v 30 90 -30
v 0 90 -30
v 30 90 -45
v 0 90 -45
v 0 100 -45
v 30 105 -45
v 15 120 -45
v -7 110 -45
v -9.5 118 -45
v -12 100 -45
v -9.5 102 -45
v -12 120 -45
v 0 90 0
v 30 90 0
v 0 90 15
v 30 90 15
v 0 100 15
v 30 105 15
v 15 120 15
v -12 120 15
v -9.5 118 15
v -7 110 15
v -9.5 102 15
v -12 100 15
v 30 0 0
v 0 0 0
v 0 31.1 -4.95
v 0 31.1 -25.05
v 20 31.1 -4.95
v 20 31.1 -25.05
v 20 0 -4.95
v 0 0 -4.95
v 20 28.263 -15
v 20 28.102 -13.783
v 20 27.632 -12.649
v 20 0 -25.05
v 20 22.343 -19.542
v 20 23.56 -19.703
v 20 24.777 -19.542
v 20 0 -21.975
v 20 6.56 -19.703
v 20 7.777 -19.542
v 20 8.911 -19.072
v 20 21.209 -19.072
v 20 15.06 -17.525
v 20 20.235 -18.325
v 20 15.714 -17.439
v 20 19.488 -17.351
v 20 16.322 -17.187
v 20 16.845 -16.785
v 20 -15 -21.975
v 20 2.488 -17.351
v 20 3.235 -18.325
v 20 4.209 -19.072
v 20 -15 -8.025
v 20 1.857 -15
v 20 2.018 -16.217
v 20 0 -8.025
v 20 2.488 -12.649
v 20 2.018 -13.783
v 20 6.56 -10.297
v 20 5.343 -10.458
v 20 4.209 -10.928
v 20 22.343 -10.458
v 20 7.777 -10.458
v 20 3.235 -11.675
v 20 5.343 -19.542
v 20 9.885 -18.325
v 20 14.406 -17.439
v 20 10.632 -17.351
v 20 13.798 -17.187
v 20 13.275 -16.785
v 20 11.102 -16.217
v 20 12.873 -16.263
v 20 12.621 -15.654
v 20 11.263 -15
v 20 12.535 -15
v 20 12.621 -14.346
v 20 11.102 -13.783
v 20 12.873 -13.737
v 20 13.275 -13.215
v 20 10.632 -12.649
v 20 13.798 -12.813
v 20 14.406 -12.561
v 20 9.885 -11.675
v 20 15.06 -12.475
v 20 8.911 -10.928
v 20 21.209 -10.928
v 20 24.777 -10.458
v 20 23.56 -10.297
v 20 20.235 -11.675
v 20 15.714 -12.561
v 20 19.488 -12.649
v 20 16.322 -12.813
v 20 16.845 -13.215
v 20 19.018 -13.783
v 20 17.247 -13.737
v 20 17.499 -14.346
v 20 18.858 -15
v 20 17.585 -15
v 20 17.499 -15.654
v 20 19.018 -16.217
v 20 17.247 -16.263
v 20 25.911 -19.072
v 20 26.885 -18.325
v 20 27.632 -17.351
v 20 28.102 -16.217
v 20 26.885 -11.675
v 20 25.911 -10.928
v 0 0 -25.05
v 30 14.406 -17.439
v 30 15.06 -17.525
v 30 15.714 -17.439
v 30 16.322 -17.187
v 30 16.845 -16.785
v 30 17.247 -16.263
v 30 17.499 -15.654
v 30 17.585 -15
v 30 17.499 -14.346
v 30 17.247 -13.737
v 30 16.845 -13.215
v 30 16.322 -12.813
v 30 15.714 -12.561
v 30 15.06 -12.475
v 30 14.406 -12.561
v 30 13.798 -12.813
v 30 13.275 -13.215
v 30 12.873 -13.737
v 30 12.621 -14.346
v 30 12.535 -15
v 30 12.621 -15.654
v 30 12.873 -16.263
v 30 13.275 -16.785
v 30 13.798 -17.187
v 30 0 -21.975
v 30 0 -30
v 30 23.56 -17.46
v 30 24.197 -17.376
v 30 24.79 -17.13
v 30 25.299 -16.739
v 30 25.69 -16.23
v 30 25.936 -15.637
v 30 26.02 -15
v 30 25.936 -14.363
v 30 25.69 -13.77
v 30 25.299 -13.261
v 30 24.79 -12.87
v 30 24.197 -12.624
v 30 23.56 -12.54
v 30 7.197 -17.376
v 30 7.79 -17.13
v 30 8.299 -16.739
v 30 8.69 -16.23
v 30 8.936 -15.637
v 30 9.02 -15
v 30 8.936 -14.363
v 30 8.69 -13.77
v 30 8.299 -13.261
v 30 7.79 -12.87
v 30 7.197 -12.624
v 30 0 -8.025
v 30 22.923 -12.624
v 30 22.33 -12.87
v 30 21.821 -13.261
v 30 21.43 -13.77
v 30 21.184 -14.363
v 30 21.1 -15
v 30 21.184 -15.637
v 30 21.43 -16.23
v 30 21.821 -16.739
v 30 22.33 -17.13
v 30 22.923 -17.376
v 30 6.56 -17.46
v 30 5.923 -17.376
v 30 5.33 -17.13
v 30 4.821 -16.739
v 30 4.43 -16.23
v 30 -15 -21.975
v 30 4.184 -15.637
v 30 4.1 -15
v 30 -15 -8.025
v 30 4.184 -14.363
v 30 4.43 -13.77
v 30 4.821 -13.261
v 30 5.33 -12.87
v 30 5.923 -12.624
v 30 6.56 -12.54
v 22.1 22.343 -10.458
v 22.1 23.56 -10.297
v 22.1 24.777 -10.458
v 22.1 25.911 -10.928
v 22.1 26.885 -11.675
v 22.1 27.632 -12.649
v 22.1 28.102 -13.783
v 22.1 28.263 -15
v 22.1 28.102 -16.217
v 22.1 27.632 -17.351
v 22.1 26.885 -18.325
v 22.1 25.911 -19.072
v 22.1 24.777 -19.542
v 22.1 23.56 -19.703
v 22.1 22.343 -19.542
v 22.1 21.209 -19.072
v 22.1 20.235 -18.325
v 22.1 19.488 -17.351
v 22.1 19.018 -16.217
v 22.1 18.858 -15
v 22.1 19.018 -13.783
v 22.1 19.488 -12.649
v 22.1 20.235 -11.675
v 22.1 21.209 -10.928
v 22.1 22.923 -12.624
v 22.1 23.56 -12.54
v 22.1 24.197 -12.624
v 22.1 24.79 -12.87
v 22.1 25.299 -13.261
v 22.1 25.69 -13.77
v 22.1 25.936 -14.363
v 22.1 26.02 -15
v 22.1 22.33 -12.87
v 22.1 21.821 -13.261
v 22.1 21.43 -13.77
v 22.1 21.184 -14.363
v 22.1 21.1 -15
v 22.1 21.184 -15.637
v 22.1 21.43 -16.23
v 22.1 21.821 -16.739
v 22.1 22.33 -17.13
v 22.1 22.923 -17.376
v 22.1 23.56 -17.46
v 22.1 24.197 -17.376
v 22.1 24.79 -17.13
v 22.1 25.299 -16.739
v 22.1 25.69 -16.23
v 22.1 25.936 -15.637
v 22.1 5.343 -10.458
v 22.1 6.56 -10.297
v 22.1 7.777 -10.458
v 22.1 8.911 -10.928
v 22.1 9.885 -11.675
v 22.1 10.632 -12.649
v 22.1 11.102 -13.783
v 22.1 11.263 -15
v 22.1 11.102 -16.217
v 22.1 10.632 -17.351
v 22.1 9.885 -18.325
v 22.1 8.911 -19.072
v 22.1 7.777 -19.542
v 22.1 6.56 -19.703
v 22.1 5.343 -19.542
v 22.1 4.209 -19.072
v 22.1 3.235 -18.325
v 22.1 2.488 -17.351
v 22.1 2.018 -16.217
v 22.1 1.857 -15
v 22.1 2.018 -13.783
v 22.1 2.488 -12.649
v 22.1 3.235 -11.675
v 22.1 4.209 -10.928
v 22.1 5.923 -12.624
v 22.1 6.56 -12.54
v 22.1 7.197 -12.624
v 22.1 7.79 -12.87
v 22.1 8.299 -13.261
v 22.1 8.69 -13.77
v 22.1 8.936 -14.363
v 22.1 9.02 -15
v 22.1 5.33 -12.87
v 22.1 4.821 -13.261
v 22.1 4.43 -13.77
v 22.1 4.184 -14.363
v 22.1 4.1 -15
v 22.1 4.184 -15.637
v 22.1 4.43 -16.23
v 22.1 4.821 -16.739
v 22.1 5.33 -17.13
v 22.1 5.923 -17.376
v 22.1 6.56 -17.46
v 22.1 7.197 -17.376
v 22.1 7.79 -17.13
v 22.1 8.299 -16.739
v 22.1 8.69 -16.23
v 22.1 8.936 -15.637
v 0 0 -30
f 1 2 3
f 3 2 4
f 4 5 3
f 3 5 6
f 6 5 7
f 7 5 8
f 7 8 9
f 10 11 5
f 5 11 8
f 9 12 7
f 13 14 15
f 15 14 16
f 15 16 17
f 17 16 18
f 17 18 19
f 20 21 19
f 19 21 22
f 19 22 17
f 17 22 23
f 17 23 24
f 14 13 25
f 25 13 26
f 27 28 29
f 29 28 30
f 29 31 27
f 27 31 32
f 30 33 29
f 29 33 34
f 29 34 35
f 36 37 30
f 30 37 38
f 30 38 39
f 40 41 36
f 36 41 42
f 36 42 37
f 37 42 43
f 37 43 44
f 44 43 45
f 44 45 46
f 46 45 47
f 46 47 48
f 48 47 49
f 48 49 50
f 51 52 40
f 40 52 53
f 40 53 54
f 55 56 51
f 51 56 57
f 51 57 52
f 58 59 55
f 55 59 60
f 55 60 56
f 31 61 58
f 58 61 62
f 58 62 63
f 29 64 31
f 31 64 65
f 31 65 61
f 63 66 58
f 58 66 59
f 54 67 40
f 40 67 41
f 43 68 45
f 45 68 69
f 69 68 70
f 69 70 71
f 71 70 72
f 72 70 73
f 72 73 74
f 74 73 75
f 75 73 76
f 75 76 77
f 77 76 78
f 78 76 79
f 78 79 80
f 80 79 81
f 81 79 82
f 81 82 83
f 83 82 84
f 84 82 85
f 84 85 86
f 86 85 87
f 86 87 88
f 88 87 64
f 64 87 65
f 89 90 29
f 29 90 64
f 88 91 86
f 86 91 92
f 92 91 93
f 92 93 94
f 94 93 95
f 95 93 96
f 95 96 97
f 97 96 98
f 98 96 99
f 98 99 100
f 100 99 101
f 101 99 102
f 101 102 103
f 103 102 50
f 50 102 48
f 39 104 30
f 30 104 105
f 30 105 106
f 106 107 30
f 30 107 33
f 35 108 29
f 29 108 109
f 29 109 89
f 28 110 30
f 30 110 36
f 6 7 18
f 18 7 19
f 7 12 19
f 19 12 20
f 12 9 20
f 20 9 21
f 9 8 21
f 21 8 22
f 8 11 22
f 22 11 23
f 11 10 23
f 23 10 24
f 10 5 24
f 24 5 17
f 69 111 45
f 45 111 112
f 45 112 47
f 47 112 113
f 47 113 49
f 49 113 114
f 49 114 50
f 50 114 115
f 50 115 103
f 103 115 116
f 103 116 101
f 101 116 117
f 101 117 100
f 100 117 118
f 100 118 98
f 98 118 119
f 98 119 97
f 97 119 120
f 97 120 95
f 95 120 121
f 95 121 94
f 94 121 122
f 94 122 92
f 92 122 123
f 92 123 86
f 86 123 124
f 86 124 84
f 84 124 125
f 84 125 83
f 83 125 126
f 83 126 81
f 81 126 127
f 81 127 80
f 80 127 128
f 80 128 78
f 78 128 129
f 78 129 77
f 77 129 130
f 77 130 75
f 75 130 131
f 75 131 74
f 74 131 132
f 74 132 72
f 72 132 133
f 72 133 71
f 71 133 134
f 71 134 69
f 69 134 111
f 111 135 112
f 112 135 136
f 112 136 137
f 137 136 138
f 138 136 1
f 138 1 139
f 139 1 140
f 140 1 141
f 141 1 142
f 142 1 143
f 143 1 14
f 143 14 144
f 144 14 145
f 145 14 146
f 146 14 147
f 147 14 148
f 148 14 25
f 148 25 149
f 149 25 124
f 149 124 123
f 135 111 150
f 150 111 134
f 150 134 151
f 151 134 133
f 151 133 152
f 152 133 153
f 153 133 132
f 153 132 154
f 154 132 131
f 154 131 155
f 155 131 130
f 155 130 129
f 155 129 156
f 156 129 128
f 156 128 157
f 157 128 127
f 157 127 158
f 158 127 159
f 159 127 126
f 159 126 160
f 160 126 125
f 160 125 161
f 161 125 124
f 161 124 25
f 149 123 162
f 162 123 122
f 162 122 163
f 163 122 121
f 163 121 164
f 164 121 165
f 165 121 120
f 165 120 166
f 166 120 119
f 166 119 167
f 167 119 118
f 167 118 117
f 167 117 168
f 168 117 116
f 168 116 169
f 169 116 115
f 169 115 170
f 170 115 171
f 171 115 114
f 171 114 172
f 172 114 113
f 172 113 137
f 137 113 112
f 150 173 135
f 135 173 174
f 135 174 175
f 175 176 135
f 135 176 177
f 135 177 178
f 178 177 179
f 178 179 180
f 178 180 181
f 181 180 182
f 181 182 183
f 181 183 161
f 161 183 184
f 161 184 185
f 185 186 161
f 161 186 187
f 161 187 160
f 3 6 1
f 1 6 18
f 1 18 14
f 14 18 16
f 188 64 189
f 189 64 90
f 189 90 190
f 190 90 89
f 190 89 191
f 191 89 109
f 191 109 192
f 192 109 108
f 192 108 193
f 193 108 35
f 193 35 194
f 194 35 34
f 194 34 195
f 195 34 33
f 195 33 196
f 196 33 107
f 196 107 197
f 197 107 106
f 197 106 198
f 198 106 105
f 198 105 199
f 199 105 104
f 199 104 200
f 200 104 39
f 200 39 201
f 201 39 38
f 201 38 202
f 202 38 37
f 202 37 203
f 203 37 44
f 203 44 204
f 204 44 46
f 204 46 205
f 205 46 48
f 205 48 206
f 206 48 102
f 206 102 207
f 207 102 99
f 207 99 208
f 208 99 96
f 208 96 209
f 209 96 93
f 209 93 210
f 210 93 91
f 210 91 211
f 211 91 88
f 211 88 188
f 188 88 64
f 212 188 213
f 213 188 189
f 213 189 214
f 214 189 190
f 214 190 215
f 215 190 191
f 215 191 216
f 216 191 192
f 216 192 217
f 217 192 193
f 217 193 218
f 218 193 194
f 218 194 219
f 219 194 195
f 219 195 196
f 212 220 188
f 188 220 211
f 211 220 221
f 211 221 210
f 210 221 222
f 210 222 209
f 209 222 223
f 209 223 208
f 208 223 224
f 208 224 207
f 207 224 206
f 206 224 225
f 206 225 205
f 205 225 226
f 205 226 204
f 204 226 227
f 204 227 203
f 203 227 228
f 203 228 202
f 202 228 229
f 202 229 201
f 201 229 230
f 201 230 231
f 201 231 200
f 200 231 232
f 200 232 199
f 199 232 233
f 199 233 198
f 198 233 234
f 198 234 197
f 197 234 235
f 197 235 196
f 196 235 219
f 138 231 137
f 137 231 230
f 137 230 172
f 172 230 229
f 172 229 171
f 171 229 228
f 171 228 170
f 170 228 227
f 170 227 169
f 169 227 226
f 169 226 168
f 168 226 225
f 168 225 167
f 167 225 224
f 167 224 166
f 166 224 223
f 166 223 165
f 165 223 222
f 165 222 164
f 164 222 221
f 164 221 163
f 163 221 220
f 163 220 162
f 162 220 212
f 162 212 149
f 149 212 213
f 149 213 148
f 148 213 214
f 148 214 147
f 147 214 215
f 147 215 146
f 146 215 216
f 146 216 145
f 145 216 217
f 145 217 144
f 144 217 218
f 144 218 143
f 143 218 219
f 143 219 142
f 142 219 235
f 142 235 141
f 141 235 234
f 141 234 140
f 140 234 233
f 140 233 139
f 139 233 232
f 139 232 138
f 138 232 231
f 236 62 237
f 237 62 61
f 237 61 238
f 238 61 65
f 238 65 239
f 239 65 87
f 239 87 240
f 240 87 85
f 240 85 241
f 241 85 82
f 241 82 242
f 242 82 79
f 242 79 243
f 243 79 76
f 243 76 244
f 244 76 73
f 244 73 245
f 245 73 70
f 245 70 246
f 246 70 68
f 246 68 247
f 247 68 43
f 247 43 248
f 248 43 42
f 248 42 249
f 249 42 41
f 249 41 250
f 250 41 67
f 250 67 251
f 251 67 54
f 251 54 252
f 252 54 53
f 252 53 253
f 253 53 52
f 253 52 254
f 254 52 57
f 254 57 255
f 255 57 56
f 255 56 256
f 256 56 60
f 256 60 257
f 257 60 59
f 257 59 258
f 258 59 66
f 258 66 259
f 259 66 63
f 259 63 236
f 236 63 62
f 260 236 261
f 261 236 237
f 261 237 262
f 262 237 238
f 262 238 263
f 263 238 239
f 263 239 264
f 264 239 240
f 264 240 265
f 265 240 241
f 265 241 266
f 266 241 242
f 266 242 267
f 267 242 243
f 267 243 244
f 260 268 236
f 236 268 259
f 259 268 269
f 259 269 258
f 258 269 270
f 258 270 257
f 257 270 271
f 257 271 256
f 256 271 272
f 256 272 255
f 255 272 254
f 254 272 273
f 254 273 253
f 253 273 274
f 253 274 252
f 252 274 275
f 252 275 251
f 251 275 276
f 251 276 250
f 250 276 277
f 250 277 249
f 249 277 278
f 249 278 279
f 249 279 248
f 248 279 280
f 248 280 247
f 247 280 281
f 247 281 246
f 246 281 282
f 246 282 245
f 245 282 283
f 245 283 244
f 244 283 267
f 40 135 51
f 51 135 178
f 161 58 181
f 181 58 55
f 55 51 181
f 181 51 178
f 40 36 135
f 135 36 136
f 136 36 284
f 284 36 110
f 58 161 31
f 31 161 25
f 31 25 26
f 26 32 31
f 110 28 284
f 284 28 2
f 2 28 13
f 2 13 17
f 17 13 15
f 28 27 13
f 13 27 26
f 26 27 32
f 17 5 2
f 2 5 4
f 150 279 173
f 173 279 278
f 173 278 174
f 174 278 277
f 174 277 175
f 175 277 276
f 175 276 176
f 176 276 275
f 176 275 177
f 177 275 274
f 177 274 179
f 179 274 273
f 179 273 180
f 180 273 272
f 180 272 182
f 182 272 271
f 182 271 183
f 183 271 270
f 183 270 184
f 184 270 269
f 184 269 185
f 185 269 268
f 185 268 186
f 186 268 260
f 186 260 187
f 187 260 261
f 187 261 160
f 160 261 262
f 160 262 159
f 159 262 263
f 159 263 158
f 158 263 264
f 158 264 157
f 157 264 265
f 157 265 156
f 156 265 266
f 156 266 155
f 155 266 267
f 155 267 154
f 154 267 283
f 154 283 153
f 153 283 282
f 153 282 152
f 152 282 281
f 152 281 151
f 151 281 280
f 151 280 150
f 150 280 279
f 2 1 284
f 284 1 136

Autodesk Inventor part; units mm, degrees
ref_plane "YZ Plane" through (0, 0, 0) normal (1, 0, 0) x (0, 1, 0)
ref_plane "XZ Plane" through (0, 0, 0) normal (0, 1, 0) x (-1, 0, 0)
sketch "Sketch1" plane through (0, 0, 0) normal (0, 0, 1) x (1, 0, 0)
  line L0 (0, 0) -> (25, 0)
  line L1 (25, 0) -> (25, 40)
  line L2 (25, 40) -> (0, 40)
  line L3 (0, 40) -> (0, 0)
  dimension "d1" = 25
  dimension "d2" = 40
  dimension "d3" = 25
extrude "Extrusion1" add sketch "Sketch1" against normal blind 30
sketch "Sketch2" plane through (25, 0, 0) normal (1, 0, 0) x (0, 0, -1)
  line L0 (0, 0) -> (30, 0) projected
  circle A0 centre (15, 6.56) radius 2.46
extrude "Extrusion2" cut sketch "Sketch2" against normal blind 30
sketch "Sketch3" plane through (0, 0, 0) normal (-1, 0, 0) x (0, 0, 1)
  line L0 (0, 0) -> (-30, 0) projected
  line L1 (-25.05, 0) -> (-4.95, 0)
  line L2 (-4.95, 0) -> (-4.95, 33.12)
  line L3 (-4.95, 33.12) -> (-25.05, 33.12)
  line L4 (-25.05, 33.12) -> (-25.05, 0)
  dimension "d11" = 20.1
extrude "Extrusion3" cut sketch "Sketch3" against normal blind 20
sketch "Sketch4" plane through (0, 0, 0) normal (0, -1, 0) x (1, 0, 0)
  line L0 (20, -4.95) -> (20, -25.05) projected
  line L1 (20, -15) -> (25, -15)
  line L2 (25, 0) -> (25, -30) projected
  line L3 (20, -8.025) -> (25, -8.025)
  line L4 (25, -8.025) -> (25, -21.975)
  line L5 (25, -21.975) -> (20, -21.975)
  line L6 (20, -21.975) -> (20, -8.025)
  line L7 (20, -8.025) -> (25, -21.975) construction
  line L8 (25, -8.025) -> (20, -21.975) construction
  line L9 (25, -12.54) -> (25, -17.46) projected
  point P0 (0, 0)
  point P1 (22.5, -15)
  dimension "d14" = 13.95
extrude "Extrusion4" add sketch "Sketch4" along normal blind 15
sketch "Sketch5" plane through (20, 0, 0) normal (-1, 0, 0) x (0, 0, 1)
  circle A0 centre (-15, 6.56) radius 2.46 projected
  circle A1 centre (-15, 6.56) radius 4.7025
  circle A2 centre (-15, 6.56) radius 2.46 projected
  circle A3 centre (-15, 6.56) radius 2.46
  point P0 (0, 0)
  dimension "d17" = 9.405
extrude "Extrusion5" cut sketch "Sketch5" against normal blind 2.1
sketch "Sketch6" plane through (25, 0, 0) normal (1, 0, 0) x (0, 0, -1)
  circle A0 centre (15, 6.56) radius 4.7025 projected
  line L0 (15, 6.56) -> (15, 23.56)
  circle A1 centre (15, 23.56) radius 2.46
  point P0 (0, 0)
  dimension "d20" = 17
  dimension "d21" = 4.92
extrude "Extrusion6" cut sketch "Sketch6" against normal blind 10 contours A1
sketch "Sketch7" plane through (20, 0, 0) normal (-1, 0, 0) x (0, 0, 1)
  circle A0 centre (-15, 23.56) radius 2.46 projected
  circle A1 centre (-15, 23.56) radius 4.7025
  point P0 (0, 0)
  dimension "d24" = 9.405
extrude "Extrusion7" cut sketch "Sketch7" against normal blind 2.1
sketch "Sketch9" plane through (25, 0, 0) normal (1, 0, 0) x (0, 0, -1)
  circle A0 centre (15, 6.56) radius 2.46 projected
  circle A1 centre (15, 6.56) radius 2.46
  circle A2 centre (15, 23.56) radius 2.46 projected
  circle A3 centre (15, 23.56) radius 2.46
  line L0 (30, 40) -> (30, 0) projected
  line L1 (30, 0) -> (30, 40)
  line L2 (30, 40) -> (0, 40)
  line L3 (0, 40) -> (0, 0)
  line L4 (0, 0) -> (8.025, 0) projected
  line L5 (21.975, 0) -> (21.975, -15)
  line L6 (21.975, -15) -> (8.025, -15)
  line L7 (8.025, -15) -> (8.025, 0)
  line L8 (0, 0) -> (8.025, 0)
  line L9 (21.975, 0) -> (30, 0)
extrude "Extrusion8" add sketch "Sketch9" along normal blind 5
sketch "Sketch10" plane through (0, 40, 0) normal (0, 1, 0) x (1, 0, 0)
  line L0 (0, 30) -> (30, 30) projected
  line L1 (30, 0) -> (0, 0) projected
  line L2 (0, 30) -> (30, 30)
  line L3 (30, 30) -> (30, 0)
  line L4 (30, 0) -> (0, 0)
  line L5 (0, 0) -> (0, 30)
extrude "Extrusion9" add sketch "Sketch10" along normal blind 30
sketch "Sketch12" plane through (30, 0, 0) normal (1, 0, 0) x (0, 0, -1)
  circle A0 centre (15, 6.56) radius 2.46 projected
  line L0 (15, 6.56) -> (15, 15.06)
  circle A1 centre (15, 15.06) radius 2.525
  point P0 (0, 0)
  dimension "d31" = 8.5
  dimension "d33" = 5.05
extrude "Extrusion10" cut sketch "Sketch12" against normal blind 30 contours A1
sketch "Sketch14" plane through (0, 0, 0) normal (0, 0, 1) x (1, 0, 0)
  line L0 (30, 70) -> (0, 70) projected
  line L1 (0, 70) -> (0, 85)
  line L2 (30, 0) -> (30, 70) projected
  line L3 (30, 100) -> (30, 70)
  line L4 (-12, 120) -> (15, 120)
  line L5 (-9.5, 118) -> (-7, 110)
  line L6 (-9.5, 118) -> (-12, 120)
  line L7 (-9.5, 102) -> (-7, 110)
  line L8 (-9.5, 102) -> (-12, 100)
  line L9 (30, 105) -> (15, 120)
  line L10 (30, 105) -> (30, 100)
  line L11 (0, 85) -> (0, 100)
  line L12 (0, 100) -> (-12, 100)
  point P0 (0, 0)
  dimension "d60" = 20
  dimension "d64" = 12
extrude "Extrusion12" add sketch "Sketch14" against normal blind 30
sketch "Sketch15" plane through (0, 0, -25.05) normal (-1, 0, 0) x (0, 0, 1)
  line L0 (0, 33.12) -> (20.1, 33.12) projected
  line L1 (20.1, 33.12) -> (20.1, 0) projected
  line L2 (0, 33.12) -> (20.1, 33.12)
  line L3 (20.1, 33.12) -> (20.1, 31.1)
  line L4 (20.1, 31.1) -> (0, 31.1)
  line L5 (0, 31.1) -> (0, 33.12)
  point P0 (25.05, 0)
  dimension "d57" = 2.02
extrude "Extrusion13" add sketch "Sketch15" against normal blind 20
sketch "Sketch20" plane through (0, 0, 0) normal (0, 0, 1) x (1, 0, 0)
  line L0 (0, 100) -> (-12, 100) projected
  line L1 (0, 100) -> (-12, 100)
  line L2 (-12, 100) -> (-9.5, 102) projected
  line L3 (-12, 100) -> (-9.5, 102)
  line L4 (-9.5, 102) -> (-7, 110) projected
  line L5 (-9.5, 102) -> (-7, 110)
  line L6 (-7, 110) -> (-9.5, 118) projected
  line L7 (-7, 110) -> (-9.5, 118)
  line L8 (-9.5, 118) -> (-12, 120) projected
  line L9 (-9.5, 118) -> (-12, 120)
  line L10 (-12, 120) -> (15, 120) projected
  line L11 (-12, 120) -> (15, 120)
  line L12 (15, 120) -> (30, 105) projected
  line L13 (15, 120) -> (30, 105)
  line L14 (30, 105) -> (30, 90)
  line L15 (30, 0) -> (30, 105) projected
  line L16 (30, 90) -> (0, 90)
  line L17 (0, 90) -> (0, 100)
  point P0 (0, 0)
  dimension "d65" = 15
  dimension "d66" = 30
extrude "Extrusion14" add sketch "Sketch20" along normal blind 15
ref_plane "Work Plane1" through (0, 0, -15) normal (0, 0, 1) x (1, 0, 0)
mirror "Mirror1" about plane through (0, 0, -15) normal (0, 0, 1) of "Extrusion14"
properties part number "rec_b_16mm_x_60mm"
